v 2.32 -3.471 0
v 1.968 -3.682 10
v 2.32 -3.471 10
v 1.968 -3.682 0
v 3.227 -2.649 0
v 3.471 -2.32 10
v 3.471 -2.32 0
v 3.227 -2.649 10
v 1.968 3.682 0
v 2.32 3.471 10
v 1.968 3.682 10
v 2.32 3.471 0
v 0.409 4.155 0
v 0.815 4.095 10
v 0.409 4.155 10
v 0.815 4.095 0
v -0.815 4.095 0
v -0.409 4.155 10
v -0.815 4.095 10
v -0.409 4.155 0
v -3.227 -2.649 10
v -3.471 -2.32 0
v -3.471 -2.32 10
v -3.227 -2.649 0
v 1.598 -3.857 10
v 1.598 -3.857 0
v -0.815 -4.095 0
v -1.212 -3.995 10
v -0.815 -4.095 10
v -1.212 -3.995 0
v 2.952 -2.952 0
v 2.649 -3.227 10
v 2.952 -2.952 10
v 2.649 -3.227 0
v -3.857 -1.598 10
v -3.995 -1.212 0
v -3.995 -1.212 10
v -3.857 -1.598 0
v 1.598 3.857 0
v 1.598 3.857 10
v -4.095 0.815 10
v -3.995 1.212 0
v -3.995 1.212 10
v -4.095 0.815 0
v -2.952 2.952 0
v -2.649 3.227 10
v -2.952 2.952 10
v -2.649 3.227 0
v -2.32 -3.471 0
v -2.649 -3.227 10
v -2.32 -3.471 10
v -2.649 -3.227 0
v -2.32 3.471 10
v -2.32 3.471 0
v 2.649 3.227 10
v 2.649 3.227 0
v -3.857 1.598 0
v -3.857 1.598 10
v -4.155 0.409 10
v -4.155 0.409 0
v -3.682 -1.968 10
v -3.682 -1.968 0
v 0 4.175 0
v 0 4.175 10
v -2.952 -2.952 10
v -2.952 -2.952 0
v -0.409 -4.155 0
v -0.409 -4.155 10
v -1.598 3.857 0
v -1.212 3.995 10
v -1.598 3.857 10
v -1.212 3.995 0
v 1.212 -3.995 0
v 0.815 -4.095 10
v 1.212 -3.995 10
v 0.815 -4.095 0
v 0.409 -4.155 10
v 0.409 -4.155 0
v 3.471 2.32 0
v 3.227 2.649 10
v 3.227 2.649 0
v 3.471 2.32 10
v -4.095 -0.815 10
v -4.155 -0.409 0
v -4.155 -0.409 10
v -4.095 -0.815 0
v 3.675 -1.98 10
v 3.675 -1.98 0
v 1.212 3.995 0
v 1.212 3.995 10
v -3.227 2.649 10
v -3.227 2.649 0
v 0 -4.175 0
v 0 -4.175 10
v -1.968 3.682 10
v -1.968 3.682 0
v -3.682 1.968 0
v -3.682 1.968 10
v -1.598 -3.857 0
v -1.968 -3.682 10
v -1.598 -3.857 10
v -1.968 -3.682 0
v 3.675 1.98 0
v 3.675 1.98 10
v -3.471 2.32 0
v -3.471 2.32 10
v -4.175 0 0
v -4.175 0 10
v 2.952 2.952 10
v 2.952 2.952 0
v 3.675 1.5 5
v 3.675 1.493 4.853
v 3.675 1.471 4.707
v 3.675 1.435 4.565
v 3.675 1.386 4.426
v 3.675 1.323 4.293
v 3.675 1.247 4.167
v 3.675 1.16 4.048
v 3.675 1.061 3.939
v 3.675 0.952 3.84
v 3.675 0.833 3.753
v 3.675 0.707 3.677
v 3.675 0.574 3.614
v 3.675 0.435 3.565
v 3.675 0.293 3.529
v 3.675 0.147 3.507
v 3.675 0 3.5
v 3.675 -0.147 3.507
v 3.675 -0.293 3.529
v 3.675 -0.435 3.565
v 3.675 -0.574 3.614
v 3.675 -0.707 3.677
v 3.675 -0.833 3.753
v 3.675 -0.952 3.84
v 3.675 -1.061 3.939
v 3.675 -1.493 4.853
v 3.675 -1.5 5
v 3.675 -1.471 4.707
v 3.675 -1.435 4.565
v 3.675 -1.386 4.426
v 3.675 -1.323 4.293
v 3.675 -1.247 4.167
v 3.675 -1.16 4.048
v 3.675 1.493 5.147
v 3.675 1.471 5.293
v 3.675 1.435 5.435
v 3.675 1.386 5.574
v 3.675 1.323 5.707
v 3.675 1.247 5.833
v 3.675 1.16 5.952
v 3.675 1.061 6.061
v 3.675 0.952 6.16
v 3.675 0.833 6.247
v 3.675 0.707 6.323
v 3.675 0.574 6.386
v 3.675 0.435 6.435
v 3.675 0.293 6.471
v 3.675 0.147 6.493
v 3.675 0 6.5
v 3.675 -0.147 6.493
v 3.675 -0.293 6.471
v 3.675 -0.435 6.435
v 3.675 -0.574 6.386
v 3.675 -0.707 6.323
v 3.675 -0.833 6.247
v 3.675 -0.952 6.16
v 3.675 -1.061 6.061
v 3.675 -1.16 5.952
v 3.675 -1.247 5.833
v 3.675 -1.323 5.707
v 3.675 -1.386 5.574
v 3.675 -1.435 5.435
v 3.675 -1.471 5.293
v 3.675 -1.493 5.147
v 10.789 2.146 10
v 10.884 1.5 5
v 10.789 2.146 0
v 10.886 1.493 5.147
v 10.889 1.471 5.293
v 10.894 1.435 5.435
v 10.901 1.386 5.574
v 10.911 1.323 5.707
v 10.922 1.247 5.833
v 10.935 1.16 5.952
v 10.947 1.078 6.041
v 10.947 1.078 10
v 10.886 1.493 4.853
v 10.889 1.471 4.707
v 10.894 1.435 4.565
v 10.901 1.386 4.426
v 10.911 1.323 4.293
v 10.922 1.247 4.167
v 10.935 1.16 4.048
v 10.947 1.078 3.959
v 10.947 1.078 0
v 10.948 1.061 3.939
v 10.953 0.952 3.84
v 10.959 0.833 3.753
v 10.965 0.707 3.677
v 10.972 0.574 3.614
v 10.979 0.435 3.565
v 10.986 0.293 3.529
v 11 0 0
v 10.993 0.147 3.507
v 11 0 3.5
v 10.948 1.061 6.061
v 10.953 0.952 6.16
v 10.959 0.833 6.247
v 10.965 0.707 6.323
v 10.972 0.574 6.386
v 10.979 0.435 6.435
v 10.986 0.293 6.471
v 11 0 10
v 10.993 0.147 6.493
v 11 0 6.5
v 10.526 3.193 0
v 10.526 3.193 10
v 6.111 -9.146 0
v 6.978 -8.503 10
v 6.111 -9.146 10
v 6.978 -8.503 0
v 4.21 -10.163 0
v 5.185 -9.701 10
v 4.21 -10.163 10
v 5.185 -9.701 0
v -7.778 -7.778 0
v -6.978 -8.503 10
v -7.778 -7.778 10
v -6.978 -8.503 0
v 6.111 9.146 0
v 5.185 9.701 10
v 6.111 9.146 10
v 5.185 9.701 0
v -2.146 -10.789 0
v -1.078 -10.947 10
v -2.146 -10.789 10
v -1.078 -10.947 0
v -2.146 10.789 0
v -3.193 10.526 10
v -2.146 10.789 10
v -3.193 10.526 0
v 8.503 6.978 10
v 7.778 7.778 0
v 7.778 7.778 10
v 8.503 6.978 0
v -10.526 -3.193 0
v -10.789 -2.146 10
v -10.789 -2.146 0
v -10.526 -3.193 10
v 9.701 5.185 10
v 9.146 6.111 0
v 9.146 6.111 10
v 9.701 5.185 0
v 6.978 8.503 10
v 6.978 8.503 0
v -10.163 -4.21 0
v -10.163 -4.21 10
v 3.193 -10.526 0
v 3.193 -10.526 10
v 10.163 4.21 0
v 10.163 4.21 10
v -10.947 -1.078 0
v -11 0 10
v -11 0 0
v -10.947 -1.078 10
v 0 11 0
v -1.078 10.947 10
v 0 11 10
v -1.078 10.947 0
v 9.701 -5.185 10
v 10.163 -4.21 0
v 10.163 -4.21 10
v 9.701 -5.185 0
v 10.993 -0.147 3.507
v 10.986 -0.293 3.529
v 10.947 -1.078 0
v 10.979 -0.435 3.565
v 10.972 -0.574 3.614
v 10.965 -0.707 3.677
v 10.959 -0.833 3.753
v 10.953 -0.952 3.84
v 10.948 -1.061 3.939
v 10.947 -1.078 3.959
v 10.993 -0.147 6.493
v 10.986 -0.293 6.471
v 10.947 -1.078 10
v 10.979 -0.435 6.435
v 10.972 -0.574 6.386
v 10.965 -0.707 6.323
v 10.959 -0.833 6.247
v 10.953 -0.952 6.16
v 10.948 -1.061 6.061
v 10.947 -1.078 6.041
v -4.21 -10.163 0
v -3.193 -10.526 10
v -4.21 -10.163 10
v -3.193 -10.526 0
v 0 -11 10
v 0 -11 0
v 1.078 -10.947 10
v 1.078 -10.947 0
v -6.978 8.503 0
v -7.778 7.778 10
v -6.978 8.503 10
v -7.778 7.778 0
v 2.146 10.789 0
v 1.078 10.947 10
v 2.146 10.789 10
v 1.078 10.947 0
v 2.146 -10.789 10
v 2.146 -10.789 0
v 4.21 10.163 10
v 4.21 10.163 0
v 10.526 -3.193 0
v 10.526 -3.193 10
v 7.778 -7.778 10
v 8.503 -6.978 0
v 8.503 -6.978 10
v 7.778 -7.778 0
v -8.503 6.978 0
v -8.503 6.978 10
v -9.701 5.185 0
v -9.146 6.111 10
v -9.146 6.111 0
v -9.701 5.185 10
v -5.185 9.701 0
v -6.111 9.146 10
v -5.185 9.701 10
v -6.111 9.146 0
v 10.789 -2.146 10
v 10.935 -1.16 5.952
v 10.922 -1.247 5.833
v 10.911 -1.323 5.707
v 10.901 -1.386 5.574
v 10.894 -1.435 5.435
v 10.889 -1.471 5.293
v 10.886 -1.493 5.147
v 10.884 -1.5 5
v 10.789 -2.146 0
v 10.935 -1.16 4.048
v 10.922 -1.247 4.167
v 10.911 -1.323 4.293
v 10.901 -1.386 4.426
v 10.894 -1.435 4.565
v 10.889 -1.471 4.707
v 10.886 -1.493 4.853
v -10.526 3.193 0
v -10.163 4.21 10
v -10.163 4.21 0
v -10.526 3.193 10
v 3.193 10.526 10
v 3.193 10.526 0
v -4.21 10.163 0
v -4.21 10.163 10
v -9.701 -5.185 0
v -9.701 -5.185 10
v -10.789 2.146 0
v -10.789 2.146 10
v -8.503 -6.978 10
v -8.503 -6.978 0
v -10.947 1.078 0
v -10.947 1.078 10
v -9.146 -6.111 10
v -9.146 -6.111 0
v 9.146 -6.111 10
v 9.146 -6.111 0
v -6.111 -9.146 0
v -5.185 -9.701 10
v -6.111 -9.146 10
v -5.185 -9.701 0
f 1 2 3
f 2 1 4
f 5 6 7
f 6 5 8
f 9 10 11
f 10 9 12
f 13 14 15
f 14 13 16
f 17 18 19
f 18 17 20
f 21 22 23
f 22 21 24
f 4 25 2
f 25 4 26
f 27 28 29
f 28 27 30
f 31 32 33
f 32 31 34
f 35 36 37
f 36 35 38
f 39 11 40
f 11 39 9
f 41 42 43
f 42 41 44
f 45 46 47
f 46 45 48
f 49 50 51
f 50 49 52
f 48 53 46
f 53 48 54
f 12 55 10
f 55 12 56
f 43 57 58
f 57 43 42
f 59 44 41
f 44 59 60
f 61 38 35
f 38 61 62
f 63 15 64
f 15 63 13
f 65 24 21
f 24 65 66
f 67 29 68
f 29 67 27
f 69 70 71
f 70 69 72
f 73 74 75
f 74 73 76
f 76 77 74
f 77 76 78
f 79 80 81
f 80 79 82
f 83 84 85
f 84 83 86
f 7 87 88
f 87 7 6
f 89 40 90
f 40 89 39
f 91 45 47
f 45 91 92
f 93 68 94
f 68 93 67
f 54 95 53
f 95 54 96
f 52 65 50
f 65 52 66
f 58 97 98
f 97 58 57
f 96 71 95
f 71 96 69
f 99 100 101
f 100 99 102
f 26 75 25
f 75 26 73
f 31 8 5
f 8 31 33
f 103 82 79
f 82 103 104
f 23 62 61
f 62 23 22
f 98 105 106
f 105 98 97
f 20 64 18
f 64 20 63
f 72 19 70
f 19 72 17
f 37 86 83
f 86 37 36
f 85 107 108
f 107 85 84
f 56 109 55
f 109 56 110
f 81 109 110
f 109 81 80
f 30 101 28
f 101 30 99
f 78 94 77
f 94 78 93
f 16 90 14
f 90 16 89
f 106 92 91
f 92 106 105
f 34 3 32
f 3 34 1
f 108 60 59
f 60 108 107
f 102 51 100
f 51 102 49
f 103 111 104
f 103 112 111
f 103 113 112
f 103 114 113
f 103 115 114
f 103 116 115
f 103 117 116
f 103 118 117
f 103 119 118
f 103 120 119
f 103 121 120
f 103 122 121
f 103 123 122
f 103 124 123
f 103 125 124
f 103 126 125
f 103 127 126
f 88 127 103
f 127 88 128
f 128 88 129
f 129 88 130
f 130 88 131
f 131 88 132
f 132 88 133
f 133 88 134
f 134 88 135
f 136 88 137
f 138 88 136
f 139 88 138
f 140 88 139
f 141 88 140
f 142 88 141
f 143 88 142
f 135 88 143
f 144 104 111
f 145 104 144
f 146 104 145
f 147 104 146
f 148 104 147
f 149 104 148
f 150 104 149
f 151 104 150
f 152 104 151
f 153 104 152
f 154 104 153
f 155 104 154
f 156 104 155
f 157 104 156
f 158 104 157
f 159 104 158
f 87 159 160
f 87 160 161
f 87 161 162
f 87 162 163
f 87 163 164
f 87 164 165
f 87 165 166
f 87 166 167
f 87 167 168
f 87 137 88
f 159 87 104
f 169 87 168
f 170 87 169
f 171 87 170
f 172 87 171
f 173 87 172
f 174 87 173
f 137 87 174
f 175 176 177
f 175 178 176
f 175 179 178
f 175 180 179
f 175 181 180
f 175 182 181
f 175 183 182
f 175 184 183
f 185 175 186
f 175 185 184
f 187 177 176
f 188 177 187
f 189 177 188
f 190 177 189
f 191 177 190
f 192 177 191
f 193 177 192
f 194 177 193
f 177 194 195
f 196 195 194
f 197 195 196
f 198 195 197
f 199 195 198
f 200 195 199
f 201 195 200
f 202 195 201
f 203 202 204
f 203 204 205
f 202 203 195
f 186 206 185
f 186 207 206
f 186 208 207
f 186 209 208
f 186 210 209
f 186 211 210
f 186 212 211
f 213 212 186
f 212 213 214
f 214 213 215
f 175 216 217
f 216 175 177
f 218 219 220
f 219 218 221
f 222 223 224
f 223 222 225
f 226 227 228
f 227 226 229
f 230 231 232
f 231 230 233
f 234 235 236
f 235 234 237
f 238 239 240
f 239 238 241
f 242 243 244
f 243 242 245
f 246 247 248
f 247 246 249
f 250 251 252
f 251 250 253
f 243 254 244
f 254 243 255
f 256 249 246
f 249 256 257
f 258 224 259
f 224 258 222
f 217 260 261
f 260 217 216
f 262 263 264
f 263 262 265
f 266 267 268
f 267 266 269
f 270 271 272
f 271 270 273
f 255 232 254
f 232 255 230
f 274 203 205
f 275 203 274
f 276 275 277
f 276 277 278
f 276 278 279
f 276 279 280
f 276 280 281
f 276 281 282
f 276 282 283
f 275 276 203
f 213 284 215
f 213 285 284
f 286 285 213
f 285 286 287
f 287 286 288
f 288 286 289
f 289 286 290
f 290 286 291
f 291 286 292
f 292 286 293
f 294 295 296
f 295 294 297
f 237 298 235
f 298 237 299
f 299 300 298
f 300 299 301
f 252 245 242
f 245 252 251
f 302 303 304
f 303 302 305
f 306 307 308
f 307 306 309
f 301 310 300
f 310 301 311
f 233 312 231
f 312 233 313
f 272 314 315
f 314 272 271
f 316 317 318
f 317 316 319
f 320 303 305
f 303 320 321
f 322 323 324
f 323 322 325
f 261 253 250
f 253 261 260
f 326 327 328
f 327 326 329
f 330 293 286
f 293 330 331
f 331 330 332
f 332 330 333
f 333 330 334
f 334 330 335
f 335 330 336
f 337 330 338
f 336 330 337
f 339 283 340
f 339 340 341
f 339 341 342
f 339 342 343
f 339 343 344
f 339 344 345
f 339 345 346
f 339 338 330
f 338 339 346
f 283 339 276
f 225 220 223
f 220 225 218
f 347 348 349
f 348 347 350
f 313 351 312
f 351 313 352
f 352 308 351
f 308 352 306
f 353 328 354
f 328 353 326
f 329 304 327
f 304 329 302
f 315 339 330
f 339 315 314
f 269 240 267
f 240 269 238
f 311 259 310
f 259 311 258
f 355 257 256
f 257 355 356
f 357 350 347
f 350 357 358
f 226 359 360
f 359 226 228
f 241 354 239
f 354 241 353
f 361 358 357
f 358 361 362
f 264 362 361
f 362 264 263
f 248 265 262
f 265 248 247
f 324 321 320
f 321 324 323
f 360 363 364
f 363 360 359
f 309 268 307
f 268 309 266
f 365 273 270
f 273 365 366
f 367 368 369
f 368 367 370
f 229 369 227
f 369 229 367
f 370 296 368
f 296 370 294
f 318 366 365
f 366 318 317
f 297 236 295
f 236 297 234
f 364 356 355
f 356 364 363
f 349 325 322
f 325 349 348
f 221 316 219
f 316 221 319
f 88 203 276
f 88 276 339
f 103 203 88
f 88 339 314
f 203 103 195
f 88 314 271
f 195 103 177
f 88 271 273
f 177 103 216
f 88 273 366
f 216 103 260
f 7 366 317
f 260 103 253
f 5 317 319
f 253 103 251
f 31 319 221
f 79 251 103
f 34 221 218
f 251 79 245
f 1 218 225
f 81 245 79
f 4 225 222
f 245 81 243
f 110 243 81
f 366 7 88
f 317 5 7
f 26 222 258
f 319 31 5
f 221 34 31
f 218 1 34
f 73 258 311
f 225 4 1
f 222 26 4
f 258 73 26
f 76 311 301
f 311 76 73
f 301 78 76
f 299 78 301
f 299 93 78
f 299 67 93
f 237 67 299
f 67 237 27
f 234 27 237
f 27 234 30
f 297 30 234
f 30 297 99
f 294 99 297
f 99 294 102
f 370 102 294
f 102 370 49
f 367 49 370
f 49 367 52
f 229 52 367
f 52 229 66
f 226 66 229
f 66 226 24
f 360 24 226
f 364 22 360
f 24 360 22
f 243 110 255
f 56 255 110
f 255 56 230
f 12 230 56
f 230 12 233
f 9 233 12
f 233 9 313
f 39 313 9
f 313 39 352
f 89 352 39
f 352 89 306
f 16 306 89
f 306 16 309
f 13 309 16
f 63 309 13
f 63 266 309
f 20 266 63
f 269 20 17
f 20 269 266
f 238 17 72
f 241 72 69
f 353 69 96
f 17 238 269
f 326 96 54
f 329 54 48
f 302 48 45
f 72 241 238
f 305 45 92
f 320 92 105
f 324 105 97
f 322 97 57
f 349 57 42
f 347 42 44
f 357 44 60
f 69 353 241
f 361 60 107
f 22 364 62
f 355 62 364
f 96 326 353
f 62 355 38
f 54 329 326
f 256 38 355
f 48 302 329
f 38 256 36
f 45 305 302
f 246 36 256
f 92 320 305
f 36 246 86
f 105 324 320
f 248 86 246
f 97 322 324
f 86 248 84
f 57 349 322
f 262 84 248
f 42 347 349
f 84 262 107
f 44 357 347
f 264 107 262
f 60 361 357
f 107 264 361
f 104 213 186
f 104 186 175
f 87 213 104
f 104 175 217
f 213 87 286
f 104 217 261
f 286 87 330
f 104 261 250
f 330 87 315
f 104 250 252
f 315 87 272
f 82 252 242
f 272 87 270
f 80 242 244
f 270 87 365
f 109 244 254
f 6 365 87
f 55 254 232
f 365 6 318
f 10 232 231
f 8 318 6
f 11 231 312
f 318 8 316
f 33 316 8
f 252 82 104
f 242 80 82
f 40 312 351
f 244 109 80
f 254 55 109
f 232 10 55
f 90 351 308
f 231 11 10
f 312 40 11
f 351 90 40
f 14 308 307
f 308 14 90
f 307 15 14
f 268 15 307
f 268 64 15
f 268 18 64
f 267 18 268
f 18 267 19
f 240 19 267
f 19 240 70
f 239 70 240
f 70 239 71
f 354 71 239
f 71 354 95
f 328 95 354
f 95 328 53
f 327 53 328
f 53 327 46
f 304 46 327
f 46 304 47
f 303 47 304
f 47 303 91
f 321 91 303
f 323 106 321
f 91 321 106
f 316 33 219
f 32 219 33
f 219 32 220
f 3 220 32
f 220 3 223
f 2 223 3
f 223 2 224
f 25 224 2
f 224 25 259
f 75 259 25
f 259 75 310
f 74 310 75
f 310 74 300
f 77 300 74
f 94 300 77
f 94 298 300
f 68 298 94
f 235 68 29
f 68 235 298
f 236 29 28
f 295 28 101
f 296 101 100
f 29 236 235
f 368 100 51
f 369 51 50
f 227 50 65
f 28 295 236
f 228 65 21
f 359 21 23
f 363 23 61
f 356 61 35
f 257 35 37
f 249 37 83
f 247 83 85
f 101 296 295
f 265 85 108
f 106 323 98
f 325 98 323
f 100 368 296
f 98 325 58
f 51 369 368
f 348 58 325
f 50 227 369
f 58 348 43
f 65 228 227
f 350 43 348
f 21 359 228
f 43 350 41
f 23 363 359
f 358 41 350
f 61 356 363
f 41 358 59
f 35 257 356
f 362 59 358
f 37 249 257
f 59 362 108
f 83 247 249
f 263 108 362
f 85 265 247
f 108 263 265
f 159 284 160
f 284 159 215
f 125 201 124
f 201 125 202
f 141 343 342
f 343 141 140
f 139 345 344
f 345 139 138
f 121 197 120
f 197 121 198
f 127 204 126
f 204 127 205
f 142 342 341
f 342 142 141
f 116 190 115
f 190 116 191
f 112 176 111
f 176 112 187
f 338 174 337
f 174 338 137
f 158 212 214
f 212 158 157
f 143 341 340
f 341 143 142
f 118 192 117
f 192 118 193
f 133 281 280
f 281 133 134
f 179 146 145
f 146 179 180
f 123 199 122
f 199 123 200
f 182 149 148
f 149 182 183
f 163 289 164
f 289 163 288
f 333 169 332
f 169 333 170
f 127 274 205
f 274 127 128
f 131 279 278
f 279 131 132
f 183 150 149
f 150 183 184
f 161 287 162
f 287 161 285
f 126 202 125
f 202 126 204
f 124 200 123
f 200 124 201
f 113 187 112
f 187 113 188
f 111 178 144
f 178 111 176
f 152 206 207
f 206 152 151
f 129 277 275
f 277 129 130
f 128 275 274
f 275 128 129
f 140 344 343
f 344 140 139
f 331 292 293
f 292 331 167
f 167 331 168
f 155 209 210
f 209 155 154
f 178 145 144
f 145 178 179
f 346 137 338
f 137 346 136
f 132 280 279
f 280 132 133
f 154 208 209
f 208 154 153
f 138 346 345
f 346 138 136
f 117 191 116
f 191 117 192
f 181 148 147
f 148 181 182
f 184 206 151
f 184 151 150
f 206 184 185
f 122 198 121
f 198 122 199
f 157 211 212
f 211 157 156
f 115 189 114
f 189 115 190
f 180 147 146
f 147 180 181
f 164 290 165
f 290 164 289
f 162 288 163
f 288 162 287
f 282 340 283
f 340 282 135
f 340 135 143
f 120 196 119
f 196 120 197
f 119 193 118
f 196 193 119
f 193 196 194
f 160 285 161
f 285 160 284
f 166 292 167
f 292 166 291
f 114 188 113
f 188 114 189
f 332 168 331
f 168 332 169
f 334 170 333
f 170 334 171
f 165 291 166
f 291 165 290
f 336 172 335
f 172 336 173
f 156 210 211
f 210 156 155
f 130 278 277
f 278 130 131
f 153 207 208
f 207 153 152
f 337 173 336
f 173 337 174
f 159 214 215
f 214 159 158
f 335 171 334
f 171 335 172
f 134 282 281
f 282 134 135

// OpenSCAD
// Gen-CQ — shaft collar with D-flat bore (set screw bears on the flat); print x4
include <parameters.scad>;
$fn = 64;
// D-flat keyed bore: flat faces +X (angle 0 = magnet pocket 0 = index notch)
module dflat_bore(h) {
    intersection() {
        cylinder(d=shaft_bore, h=h);
        translate([-shaft_bore, -shaft_bore, 0]) cube([shaft_bore + dflat_x, 2*shaft_bore, h]);
    }
}

od = 22; h = collar_h; set_d = 3.0;
difference() {
    cylinder(d=od, h=h);
    translate([0, 0, -0.1]) dflat_bore(h + 0.2);
    translate([0, 0, h/2]) rotate([0, 90, 0]) cylinder(d=set_d, h=od);
}
